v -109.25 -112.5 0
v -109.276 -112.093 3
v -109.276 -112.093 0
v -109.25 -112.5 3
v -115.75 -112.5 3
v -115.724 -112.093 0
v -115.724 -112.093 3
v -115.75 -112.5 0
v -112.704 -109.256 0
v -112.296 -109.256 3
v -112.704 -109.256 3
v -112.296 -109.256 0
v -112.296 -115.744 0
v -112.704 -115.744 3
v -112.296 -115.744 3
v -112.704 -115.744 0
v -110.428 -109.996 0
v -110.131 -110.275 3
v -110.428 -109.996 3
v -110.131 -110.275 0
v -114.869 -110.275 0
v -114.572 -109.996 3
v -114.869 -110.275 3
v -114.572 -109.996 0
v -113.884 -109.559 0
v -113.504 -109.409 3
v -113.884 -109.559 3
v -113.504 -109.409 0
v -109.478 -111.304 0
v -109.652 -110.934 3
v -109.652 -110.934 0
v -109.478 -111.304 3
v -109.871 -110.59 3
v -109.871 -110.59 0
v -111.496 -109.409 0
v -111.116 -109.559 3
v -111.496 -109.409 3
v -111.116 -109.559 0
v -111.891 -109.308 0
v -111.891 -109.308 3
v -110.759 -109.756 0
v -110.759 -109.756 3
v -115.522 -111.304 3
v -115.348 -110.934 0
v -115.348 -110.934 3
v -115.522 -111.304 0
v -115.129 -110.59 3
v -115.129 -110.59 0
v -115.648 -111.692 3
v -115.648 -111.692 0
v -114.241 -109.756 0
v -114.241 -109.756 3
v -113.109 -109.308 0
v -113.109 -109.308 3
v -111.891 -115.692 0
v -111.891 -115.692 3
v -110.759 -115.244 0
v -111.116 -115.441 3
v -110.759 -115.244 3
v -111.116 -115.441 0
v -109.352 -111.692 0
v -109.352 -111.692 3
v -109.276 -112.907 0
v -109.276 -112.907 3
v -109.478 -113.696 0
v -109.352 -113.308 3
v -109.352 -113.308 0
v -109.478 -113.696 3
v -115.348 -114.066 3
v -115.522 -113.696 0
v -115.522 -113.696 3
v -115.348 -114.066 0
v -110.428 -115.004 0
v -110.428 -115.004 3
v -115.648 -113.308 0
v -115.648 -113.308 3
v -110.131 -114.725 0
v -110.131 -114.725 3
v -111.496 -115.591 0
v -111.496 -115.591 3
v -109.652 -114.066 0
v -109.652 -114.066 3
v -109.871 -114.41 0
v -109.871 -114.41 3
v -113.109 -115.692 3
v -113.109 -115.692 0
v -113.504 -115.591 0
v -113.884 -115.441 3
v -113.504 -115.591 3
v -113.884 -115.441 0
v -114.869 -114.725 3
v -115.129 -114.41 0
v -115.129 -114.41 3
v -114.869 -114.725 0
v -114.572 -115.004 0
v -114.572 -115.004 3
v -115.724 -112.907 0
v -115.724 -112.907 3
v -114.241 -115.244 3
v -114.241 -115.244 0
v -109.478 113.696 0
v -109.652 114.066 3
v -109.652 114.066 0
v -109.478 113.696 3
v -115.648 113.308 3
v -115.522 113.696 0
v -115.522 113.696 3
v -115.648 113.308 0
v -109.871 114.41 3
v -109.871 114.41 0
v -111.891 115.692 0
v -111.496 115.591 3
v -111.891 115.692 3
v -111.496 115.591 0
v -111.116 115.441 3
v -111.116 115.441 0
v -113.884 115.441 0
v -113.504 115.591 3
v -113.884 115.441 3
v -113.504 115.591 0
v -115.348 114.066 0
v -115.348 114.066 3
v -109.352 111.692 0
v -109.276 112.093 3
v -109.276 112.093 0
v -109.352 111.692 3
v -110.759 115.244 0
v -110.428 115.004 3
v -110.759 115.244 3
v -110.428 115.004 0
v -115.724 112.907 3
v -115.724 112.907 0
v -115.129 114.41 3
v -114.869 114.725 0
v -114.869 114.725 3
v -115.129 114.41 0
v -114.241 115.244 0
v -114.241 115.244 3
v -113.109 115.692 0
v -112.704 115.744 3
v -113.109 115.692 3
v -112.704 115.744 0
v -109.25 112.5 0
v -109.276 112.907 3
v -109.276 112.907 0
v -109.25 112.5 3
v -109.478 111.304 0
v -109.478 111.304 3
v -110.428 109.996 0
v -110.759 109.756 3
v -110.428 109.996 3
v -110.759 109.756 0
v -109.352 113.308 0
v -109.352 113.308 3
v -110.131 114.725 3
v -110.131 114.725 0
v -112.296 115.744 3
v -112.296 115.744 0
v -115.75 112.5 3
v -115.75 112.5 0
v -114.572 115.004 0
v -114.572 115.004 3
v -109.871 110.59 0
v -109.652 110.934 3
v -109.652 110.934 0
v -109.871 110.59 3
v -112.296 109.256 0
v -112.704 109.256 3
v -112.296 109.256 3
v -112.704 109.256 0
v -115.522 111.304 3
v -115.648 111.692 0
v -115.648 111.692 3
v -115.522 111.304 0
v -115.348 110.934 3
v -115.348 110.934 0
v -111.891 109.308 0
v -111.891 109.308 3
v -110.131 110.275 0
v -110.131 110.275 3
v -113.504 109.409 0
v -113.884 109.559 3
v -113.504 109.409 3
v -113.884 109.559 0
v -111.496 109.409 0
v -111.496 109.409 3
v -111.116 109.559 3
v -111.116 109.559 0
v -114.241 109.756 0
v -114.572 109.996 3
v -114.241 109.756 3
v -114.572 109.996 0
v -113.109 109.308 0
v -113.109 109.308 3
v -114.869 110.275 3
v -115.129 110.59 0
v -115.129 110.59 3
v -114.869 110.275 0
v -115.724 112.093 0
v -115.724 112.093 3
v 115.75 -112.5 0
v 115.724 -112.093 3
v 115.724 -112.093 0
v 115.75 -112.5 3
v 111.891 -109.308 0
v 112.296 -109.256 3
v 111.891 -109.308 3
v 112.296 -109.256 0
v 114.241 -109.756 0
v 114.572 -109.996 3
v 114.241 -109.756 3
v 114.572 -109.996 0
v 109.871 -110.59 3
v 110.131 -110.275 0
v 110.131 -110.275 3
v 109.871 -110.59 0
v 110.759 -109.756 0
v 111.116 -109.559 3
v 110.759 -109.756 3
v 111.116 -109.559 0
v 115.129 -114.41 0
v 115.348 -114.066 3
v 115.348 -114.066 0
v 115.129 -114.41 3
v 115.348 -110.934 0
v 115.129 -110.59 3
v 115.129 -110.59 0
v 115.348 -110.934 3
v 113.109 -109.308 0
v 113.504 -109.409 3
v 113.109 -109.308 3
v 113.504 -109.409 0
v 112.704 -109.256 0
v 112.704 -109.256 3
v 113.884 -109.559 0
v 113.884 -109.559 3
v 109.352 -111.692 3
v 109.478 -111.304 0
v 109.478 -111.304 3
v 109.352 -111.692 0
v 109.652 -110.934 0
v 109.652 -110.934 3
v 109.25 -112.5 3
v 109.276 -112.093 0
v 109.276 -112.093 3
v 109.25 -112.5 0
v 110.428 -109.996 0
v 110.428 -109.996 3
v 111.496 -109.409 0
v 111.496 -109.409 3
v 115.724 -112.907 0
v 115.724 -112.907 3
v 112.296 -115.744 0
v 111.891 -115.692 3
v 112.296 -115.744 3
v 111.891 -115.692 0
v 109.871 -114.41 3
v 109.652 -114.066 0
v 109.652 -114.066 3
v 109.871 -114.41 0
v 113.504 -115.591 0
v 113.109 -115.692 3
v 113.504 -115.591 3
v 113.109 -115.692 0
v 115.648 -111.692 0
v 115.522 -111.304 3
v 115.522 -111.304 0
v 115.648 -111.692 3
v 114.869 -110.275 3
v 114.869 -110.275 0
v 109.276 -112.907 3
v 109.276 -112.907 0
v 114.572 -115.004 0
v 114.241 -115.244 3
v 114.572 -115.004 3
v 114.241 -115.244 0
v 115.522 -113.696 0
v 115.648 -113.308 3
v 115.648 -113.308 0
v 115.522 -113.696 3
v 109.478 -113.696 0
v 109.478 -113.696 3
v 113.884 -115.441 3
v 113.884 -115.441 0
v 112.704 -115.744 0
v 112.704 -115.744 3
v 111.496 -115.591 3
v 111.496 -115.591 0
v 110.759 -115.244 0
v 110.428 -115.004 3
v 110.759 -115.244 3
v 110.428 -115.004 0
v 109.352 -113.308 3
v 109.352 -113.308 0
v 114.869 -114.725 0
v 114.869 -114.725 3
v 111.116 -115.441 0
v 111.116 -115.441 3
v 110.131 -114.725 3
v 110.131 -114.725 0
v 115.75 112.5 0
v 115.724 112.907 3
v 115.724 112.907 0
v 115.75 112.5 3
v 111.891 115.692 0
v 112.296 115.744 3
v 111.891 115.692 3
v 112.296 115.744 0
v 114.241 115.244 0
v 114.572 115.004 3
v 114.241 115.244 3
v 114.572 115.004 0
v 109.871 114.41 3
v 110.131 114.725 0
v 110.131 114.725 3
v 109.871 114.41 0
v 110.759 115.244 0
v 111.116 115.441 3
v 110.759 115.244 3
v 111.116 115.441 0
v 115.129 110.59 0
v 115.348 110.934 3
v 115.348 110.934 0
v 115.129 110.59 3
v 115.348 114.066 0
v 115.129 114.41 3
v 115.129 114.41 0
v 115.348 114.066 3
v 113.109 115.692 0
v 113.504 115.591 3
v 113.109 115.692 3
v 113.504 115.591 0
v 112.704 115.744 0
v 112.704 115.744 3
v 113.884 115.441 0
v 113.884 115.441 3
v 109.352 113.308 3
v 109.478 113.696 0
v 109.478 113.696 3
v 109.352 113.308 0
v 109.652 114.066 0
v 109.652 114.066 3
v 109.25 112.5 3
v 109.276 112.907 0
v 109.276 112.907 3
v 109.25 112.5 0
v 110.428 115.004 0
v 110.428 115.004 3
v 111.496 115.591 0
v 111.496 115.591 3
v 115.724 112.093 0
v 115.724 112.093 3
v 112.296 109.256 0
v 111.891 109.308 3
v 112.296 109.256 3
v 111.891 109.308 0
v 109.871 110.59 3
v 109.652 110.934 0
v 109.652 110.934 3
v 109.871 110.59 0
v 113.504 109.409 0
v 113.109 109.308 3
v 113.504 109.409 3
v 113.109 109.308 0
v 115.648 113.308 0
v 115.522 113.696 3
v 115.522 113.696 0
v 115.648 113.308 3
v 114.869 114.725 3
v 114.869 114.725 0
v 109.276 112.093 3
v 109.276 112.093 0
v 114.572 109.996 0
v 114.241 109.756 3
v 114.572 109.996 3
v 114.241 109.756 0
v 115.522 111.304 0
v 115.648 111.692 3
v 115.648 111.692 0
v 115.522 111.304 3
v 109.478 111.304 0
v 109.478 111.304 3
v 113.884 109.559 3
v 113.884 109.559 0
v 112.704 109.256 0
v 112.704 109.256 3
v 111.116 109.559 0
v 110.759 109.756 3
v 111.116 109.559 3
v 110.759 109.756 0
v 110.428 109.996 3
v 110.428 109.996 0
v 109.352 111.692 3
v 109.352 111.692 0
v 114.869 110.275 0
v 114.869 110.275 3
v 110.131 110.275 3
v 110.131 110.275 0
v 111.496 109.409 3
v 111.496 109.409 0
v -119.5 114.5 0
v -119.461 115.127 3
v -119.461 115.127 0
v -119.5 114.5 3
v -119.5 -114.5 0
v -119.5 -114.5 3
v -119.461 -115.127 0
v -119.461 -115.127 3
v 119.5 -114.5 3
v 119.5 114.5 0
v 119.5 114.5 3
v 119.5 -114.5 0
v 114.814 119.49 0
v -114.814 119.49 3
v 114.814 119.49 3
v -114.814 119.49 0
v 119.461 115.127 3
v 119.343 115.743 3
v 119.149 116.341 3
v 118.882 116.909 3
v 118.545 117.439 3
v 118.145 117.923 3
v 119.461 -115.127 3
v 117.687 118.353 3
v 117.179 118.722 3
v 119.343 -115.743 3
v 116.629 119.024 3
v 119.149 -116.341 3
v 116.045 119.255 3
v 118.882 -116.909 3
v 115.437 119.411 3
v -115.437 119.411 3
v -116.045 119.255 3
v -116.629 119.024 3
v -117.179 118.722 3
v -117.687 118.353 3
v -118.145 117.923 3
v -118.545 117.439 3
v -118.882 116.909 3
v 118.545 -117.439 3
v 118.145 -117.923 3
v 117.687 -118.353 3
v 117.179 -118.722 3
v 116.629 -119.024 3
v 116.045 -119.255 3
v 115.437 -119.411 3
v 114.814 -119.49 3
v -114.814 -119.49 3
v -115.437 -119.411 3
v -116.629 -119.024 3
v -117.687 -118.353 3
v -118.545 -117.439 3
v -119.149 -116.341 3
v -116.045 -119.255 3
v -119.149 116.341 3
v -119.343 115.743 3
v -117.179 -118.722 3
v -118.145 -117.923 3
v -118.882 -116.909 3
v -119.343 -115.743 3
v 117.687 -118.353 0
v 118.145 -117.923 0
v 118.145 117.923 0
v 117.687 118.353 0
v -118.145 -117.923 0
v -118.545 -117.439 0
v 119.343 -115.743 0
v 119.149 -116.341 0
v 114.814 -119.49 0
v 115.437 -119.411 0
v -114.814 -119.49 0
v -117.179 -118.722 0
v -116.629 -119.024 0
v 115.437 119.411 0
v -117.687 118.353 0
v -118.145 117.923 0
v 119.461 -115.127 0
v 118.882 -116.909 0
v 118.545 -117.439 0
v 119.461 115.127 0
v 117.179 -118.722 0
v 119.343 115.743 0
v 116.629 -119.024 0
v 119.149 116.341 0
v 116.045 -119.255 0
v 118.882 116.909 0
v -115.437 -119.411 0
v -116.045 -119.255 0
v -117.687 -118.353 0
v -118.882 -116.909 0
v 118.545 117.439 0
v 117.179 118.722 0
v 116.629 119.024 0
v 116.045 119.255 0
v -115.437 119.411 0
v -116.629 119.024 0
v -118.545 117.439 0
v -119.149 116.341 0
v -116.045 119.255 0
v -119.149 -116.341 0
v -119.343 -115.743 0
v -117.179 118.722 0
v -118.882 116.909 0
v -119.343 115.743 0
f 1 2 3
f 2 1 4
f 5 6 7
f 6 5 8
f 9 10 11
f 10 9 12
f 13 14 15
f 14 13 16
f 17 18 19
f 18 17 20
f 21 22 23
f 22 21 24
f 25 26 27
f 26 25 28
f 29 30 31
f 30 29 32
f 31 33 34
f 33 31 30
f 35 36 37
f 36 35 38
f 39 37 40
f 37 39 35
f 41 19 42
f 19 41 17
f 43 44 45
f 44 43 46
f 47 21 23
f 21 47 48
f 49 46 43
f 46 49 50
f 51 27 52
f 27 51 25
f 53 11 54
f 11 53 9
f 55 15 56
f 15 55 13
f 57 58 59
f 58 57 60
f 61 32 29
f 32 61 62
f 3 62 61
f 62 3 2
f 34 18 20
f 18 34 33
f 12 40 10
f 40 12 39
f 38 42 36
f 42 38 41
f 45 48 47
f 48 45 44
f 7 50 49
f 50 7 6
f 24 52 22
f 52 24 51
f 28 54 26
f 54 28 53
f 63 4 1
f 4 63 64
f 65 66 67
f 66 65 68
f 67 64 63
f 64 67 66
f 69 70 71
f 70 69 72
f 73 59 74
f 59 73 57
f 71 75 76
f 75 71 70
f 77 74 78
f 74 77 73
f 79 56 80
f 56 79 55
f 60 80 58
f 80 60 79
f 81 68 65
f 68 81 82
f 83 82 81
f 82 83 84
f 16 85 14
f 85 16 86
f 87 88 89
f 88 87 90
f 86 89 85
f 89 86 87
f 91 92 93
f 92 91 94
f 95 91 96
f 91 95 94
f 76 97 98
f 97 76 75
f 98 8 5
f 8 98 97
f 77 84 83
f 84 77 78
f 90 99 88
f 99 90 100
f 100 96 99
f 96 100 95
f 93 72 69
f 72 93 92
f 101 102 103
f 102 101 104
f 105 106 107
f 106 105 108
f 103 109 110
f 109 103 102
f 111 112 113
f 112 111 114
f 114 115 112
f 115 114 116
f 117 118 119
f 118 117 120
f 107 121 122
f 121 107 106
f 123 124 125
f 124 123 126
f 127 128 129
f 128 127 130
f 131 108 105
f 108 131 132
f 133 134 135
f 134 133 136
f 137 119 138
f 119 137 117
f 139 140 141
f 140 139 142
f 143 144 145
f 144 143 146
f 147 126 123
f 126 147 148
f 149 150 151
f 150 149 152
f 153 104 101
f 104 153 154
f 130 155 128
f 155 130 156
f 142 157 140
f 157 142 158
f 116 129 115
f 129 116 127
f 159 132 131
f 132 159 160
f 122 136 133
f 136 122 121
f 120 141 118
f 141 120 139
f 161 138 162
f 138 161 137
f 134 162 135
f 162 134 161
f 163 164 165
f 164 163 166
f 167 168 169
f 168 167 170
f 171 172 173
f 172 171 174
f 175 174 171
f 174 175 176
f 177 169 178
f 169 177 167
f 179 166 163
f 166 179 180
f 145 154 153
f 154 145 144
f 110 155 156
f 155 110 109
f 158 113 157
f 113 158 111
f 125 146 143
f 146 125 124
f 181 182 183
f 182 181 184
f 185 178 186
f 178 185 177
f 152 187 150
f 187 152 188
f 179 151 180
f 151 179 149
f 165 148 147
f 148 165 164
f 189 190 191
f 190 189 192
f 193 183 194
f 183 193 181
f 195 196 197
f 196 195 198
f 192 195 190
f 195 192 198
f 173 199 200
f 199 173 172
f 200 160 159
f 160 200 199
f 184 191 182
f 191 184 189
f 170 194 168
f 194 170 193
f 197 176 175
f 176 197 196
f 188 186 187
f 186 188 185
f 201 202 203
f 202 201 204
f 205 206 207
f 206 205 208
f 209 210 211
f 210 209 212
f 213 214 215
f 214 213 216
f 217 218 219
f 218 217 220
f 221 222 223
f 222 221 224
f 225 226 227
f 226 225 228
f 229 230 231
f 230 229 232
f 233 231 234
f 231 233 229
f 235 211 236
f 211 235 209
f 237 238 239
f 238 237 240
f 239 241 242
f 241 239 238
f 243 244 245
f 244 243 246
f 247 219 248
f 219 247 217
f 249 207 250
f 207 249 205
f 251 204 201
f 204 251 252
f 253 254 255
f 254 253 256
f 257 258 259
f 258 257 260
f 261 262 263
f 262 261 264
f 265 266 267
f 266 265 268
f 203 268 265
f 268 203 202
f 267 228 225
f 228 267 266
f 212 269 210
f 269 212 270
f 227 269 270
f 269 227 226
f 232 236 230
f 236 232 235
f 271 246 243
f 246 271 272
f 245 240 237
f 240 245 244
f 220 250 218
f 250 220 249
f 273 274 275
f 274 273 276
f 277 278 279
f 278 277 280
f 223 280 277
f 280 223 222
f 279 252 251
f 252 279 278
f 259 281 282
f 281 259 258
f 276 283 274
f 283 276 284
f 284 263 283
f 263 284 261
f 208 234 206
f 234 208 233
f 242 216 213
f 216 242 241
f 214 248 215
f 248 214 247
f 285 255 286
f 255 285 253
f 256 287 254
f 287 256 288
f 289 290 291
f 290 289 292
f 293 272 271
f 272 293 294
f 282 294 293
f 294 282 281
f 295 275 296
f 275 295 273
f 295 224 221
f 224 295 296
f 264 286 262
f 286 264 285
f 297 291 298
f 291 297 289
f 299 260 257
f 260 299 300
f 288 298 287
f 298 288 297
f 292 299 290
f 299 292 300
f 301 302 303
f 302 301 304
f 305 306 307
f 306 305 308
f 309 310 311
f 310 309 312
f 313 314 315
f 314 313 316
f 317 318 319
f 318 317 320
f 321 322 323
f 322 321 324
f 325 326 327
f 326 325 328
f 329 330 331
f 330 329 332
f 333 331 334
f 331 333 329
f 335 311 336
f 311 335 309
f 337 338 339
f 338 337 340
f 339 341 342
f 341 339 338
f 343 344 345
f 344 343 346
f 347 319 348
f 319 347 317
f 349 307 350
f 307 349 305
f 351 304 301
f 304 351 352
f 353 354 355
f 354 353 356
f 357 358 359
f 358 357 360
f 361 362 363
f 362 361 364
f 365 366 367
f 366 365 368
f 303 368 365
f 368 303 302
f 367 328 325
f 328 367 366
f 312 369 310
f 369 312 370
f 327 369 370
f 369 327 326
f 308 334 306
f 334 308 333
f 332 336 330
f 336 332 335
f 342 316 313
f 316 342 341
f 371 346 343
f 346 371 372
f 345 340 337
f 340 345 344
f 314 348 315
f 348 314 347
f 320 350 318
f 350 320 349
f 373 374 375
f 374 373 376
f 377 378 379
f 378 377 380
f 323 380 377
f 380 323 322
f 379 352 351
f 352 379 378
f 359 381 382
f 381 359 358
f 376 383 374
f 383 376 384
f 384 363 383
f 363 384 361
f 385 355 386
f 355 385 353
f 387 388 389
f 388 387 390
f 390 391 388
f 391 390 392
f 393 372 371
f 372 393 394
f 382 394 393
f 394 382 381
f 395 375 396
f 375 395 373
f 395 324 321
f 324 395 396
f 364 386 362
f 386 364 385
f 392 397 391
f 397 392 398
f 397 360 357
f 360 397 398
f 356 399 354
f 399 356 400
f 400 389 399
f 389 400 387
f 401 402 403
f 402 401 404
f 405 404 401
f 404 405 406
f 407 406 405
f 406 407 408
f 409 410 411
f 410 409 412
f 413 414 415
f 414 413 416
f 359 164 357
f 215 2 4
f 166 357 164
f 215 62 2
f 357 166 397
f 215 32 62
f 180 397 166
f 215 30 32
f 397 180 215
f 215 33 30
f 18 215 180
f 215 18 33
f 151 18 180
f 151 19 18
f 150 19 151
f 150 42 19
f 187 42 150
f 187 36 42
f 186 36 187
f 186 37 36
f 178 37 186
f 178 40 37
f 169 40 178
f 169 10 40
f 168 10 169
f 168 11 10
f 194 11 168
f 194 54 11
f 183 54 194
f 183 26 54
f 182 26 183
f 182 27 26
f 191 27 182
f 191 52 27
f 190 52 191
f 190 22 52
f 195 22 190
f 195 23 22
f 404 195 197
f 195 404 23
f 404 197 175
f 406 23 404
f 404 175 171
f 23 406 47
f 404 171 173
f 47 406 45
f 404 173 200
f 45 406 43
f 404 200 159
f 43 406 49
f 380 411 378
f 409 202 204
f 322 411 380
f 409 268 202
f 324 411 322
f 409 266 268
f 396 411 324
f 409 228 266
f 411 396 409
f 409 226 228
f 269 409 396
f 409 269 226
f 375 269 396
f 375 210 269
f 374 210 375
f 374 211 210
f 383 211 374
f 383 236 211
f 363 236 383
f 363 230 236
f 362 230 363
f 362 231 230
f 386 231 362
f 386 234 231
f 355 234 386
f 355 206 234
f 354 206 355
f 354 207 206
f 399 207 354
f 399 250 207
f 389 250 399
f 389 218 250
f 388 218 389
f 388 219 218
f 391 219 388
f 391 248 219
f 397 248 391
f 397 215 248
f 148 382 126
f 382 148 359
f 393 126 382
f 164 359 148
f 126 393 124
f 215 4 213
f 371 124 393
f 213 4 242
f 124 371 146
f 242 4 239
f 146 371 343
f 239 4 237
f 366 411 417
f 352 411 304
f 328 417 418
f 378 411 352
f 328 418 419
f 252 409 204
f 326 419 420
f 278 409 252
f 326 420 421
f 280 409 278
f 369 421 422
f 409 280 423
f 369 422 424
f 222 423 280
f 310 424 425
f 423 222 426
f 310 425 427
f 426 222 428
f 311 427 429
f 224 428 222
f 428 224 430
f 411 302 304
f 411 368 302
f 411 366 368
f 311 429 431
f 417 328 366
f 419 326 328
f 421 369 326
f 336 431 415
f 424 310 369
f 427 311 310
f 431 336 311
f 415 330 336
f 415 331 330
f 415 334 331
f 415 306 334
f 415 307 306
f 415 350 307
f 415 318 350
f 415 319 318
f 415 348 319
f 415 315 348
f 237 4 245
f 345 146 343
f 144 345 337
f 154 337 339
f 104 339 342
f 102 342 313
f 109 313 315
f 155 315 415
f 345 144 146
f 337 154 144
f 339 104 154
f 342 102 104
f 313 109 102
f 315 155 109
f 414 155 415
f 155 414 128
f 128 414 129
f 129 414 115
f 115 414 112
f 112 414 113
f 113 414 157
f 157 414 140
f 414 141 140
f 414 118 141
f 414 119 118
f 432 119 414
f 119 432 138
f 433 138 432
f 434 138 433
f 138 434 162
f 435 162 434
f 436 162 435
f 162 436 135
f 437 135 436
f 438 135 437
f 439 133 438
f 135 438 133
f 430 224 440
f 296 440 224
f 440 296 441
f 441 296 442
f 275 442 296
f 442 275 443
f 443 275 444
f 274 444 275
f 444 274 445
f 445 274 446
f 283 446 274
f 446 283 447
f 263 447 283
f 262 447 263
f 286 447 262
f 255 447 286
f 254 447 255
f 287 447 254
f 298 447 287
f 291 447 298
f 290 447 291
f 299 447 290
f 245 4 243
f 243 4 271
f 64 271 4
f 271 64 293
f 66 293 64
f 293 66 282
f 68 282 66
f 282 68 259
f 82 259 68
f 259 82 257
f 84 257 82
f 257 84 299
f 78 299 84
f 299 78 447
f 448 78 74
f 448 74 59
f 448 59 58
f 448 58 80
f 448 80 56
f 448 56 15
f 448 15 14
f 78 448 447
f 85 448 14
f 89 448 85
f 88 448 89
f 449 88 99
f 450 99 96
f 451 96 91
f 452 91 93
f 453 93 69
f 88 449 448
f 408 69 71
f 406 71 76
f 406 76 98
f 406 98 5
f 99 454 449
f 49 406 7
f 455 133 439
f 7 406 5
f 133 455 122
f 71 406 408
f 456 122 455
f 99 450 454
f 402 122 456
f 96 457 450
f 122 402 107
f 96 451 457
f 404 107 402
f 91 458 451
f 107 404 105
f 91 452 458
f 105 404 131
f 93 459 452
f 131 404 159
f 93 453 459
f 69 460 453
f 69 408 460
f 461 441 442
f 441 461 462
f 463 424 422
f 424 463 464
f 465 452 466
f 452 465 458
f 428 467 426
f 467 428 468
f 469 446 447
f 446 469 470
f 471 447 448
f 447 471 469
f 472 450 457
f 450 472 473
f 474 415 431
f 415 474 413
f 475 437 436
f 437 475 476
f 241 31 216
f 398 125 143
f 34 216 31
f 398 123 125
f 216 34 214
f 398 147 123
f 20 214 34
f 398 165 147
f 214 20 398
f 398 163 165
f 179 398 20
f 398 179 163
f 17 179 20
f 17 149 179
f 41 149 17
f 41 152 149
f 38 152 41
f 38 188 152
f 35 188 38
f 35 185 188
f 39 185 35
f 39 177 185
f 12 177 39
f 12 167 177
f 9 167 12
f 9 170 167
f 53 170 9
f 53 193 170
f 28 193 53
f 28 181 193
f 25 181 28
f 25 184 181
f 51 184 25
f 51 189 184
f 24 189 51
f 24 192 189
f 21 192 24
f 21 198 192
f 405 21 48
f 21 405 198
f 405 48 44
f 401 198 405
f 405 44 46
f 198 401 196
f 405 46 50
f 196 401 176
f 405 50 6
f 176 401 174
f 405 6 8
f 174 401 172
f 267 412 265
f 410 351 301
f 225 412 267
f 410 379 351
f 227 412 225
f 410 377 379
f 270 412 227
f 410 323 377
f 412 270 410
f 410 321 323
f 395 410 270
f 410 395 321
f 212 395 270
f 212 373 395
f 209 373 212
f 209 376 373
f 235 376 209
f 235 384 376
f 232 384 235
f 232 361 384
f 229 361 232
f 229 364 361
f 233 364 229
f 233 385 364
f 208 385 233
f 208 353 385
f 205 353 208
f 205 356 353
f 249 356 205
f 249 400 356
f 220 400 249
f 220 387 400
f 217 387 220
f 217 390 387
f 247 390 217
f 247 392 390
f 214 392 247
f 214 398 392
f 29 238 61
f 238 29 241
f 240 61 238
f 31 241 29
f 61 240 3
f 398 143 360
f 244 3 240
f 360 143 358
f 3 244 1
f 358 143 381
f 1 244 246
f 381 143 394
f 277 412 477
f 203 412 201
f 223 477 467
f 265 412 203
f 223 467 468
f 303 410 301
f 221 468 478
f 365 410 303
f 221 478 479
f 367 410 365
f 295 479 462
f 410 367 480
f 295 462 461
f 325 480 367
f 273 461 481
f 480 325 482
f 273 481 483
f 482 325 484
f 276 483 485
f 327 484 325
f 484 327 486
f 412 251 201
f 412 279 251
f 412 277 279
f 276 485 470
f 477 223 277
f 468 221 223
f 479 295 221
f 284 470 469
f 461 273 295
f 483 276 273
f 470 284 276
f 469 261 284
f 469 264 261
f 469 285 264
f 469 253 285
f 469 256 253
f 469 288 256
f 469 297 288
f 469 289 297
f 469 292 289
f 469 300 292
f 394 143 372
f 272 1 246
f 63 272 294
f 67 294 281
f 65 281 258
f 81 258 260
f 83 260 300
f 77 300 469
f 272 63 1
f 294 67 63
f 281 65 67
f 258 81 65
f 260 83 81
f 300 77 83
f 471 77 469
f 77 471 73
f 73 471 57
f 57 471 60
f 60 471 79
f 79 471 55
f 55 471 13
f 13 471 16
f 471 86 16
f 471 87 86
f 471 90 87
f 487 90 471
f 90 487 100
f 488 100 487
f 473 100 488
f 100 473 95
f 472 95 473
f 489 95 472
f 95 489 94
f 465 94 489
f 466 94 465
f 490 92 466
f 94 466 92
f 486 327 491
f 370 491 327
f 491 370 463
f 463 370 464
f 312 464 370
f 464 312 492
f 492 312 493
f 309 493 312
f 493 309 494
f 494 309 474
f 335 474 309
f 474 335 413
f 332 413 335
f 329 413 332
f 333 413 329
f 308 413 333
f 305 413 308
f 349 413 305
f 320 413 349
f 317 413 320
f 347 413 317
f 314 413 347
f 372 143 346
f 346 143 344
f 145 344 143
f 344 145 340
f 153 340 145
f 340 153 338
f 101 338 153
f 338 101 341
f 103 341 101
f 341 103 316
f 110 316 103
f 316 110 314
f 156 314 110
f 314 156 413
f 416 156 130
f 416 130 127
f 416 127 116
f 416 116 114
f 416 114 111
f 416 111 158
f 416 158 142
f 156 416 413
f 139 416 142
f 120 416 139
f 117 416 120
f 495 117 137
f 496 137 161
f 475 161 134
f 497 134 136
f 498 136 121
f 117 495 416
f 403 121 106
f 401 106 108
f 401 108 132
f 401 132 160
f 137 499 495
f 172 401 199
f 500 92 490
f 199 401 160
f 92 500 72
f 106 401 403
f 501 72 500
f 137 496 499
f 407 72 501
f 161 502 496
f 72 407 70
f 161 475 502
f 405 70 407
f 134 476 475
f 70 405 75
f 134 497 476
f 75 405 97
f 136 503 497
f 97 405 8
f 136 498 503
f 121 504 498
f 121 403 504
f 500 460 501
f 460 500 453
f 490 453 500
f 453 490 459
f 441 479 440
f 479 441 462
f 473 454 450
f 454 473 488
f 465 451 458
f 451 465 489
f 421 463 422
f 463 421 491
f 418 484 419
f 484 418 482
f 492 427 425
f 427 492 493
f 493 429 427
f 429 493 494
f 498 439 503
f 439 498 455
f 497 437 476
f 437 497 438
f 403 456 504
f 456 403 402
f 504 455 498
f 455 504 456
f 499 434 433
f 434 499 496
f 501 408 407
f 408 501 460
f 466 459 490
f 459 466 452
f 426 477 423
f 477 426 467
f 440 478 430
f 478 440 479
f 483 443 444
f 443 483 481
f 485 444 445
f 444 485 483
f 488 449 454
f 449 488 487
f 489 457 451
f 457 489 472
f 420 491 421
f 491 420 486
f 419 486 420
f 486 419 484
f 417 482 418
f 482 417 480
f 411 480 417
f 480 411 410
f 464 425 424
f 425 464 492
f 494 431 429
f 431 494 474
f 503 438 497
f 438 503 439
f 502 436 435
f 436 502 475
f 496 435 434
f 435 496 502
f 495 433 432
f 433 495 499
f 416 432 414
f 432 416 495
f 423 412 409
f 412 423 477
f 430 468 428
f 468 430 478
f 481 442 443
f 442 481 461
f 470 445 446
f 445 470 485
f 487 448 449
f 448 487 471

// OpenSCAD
$fn = 50;


difference() {
	union() {
		hull() {
			translate(v = [-114.5000000000, 114.5000000000, 0]) {
				cylinder(h = 3, r = 5);
			}
			translate(v = [114.5000000000, 114.5000000000, 0]) {
				cylinder(h = 3, r = 5);
			}
			translate(v = [-114.5000000000, -114.5000000000, 0]) {
				cylinder(h = 3, r = 5);
			}
			translate(v = [114.5000000000, -114.5000000000, 0]) {
				cylinder(h = 3, r = 5);
			}
		}
	}
	union() {
		translate(v = [-112.5000000000, -112.5000000000, -100.0000000000]) {
			cylinder(h = 200, r = 3.2500000000);
		}
		translate(v = [-112.5000000000, 112.5000000000, -100.0000000000]) {
			cylinder(h = 200, r = 3.2500000000);
		}
		translate(v = [112.5000000000, -112.5000000000, -100.0000000000]) {
			cylinder(h = 200, r = 3.2500000000);
		}
		translate(v = [112.5000000000, 112.5000000000, -100.0000000000]) {
			cylinder(h = 200, r = 3.2500000000);
		}
	}
}
